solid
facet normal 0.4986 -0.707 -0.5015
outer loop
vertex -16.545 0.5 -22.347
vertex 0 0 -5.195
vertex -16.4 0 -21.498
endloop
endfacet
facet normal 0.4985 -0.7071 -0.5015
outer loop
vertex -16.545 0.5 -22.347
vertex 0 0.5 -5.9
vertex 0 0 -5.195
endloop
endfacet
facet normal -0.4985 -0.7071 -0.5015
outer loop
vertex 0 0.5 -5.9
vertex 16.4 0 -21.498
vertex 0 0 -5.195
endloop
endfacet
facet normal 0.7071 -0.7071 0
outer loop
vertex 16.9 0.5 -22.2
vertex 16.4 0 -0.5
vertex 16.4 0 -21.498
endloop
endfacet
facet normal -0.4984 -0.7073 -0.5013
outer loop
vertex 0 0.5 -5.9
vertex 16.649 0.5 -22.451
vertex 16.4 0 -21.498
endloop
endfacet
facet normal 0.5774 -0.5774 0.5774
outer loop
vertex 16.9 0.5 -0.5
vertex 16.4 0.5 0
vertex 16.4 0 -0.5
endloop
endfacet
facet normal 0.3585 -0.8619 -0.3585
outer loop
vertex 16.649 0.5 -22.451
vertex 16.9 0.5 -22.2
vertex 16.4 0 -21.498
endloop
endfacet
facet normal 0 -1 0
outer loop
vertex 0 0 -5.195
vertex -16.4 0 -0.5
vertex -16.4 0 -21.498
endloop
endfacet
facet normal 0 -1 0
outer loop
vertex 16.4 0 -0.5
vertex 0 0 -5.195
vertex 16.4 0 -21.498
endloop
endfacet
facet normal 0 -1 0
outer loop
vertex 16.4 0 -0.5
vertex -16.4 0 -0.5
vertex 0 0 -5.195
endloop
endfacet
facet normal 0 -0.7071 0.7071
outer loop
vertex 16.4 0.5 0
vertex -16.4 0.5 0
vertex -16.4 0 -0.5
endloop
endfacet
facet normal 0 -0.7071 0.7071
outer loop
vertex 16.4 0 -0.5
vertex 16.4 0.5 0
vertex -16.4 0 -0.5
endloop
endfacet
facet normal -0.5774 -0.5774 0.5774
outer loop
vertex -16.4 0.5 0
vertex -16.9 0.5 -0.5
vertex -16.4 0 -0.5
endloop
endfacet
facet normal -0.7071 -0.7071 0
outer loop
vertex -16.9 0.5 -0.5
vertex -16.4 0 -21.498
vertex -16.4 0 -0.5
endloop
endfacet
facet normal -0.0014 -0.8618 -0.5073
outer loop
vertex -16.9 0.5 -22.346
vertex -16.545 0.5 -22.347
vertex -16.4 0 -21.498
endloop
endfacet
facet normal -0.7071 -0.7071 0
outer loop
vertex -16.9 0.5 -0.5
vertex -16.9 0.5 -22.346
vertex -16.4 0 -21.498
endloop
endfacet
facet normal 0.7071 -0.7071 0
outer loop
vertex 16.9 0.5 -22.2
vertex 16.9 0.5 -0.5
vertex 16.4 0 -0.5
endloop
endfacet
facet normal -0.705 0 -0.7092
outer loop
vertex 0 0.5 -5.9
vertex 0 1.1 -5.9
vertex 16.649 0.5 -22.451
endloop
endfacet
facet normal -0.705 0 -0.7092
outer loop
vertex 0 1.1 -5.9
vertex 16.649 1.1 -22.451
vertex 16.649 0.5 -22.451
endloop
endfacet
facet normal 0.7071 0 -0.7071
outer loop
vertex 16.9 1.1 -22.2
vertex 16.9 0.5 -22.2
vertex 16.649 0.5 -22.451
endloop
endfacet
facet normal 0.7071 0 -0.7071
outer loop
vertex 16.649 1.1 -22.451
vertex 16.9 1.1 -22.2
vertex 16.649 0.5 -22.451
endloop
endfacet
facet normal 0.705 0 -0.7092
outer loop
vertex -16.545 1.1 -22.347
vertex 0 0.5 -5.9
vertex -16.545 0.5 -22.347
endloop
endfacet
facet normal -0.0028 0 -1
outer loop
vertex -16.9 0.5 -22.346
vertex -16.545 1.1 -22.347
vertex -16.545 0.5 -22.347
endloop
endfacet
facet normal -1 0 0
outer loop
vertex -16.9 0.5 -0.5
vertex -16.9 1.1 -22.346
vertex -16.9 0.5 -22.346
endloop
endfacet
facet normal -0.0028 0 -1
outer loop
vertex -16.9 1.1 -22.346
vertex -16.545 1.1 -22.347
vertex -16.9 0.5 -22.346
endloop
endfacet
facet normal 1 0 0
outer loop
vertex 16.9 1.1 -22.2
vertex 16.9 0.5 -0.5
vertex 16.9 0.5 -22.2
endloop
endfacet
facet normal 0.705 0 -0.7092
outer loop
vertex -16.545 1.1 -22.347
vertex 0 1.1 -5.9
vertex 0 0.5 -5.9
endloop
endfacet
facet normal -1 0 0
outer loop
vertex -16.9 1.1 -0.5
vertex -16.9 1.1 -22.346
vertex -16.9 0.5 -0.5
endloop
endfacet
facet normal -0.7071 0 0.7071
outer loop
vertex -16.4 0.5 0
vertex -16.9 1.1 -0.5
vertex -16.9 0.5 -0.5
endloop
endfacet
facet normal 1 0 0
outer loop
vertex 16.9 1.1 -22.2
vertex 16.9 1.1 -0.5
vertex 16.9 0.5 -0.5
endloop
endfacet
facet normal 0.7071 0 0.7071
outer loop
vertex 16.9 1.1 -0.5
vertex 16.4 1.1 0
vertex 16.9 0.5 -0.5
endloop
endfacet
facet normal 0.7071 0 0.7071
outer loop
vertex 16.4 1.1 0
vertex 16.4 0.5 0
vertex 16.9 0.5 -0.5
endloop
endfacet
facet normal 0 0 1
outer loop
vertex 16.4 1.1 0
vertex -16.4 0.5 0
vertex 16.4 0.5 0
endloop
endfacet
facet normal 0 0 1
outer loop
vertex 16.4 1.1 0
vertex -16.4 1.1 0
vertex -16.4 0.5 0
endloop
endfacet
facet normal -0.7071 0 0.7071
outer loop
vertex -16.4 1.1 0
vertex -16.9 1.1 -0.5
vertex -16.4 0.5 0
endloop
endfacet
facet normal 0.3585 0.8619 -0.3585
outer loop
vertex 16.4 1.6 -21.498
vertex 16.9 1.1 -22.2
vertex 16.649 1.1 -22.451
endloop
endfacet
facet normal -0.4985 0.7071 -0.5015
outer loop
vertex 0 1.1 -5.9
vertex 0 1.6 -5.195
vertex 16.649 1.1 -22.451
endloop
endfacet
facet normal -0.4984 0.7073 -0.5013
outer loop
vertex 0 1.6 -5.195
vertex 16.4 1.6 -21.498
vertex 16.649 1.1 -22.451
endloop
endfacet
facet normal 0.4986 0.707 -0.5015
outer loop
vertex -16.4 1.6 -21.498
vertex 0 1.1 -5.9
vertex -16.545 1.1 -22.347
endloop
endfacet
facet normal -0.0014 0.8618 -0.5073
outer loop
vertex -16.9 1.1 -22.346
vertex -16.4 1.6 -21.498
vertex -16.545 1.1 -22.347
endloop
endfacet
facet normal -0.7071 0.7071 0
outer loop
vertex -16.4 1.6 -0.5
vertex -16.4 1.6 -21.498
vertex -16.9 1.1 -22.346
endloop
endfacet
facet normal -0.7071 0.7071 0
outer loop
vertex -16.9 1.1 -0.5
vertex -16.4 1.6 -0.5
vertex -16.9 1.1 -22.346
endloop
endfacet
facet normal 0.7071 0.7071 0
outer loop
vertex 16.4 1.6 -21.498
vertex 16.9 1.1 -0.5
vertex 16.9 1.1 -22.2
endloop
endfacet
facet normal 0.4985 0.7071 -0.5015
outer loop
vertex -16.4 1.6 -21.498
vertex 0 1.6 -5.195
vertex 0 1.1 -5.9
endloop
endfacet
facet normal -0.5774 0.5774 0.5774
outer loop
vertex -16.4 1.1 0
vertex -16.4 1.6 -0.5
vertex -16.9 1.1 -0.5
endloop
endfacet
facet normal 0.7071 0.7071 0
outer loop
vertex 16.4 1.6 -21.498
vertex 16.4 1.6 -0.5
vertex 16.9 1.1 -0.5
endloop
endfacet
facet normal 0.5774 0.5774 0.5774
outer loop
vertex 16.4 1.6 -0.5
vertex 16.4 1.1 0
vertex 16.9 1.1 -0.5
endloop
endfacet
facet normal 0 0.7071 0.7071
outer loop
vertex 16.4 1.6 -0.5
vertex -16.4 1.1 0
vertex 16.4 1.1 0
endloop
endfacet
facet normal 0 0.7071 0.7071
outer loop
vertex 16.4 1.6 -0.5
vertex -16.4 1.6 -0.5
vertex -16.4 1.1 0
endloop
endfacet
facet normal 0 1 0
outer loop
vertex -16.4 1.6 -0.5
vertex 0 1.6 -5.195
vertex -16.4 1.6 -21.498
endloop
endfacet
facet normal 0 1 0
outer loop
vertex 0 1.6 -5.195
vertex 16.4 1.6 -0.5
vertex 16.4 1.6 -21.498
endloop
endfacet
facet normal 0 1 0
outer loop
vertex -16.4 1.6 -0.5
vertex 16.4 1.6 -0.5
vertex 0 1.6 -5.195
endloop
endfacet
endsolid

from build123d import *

# Parameters (mm, degrees)
BOSS_EXTRUDE1_DEPTH = 1.6


with BuildPart() as part:
    # Sketch1 → Boss-Extrude1 (new body)
    with BuildSketch(Plane(origin=(0, 0, 0), x_dir=(1, 0, 0), z_dir=(0, 1, 0))):
        Polygon((16.9, 22.7), (16.9, 0), (-16.9, 0), (-16.9, 22.7), (0, 5.9), align=None)
    extrude(amount=BOSS_EXTRUDE1_DEPTH)

    # Chamfer1
    # the kernel refuses this chamfer: 0.5, 0.353554947 mm, written as the material it takes off along each edge
    with BuildSketch(Plane(origin=(-16.566666667, 1.266666667, -0.333333333), x_dir=(-0.7071067811865475, 0, -0.7071067811865475), z_dir=(-0.5773502691896256, 0.5773502691896261, 0.5773502691896256)), Plane(origin=(16.566666667, 1.266666667, -0.333333333), x_dir=(-0.7071067811865475, 0, 0.7071067811865475), z_dir=(0.5773502691896258, 0.5773502691896256, 0.5773502691896258))) as chamfer1_piece_1:
        Polygon((-0.353553391, 0.204124145), (0.353553391, 0.204124145), (0, -0.40824829), align=None)
    extrude(amount=0.635085296, mode=Mode.SUBTRACT)
    with BuildSketch(Plane(origin=(-16.615133017, 1.266666667, -22.06396102), x_dir=(0.9999955974192072, 0, -0.0029673459864134454), z_dir=(-0.0015045248311199464, 0.8619301129134874, -0.507024868086345))) as chamfer1_piece_2:
        Polygon((-0.284027501, 0.328713527), (0.070575009, 0.328713527), (0.213452492, -0.657427055), align=None)
    extrude(amount=0.671248828, mode=Mode.SUBTRACT)
    with BuildSketch(Plane(origin=(16.64975272, 1.266666667, -22.049560855), x_dir=(-0.7071067811865375, 0, -0.7071067811865576), z_dir=(0.35852230087747156, 0.8619301129134861, -0.3585223008774614))) as chamfer1_piece_3:
        Polygon((-0.070575009, -0.328713527), (0.284027501, -0.328713527), (-0.213452492, 0.657427055), align=None)
    extrude(amount=0.671248828, mode=Mode.SUBTRACT)
    with BuildSketch(Plane(origin=(16.64975272, 0.333333333, -22.049560855), x_dir=(-0.7071067811865375, 0, -0.7071067811865576), z_dir=(0.3585223008774716, -0.8619301129134861, -0.3585223008774613))) as chamfer1_piece_4:
        Polygon((-0.070575009, 0.328713527), (0.284027501, 0.328713527), (-0.213452492, -0.657427055), align=None)
    extrude(amount=0.671248828, mode=Mode.SUBTRACT)
    with BuildSketch(Plane(origin=(16.566666667, 0.333333333, -0.333333333), x_dir=(-0.7071067811865475, 0, 0.7071067811865475), z_dir=(0.5773502691896258, -0.5773502691896257, 0.5773502691896258)), Plane(origin=(-16.566666667, 0.333333333, -0.333333333), x_dir=(-0.7071067811865475, 0, -0.7071067811865475), z_dir=(-0.5773502691896256, -0.5773502691896261, 0.5773502691896255))) as chamfer1_piece_5:
        Polygon((-0.353553391, -0.204124145), (0.353553391, -0.204124145), (0, 0.40824829), align=None)
    extrude(amount=0.635085296, mode=Mode.SUBTRACT)
    with BuildSketch(Plane(origin=(-16.615133017, 0.333333333, -22.06396102), x_dir=(0.9999955974192072, 0, -0.0029673459864134454), z_dir=(-0.0015045248311200809, -0.8619301129134874, -0.507024868086345))) as chamfer1_piece_6:
        Polygon((-0.284027501, -0.328713527), (0.070575009, -0.328713527), (0.213452492, 0.657427055), align=None)
    extrude(amount=0.671248828, mode=Mode.SUBTRACT)
    with BuildSketch(Plane(origin=(-16.9, 1.6, 1.285841494), x_dir=(-0.02749587661058907, -0.9996219169112965, 0), z_dir=(0, 0, -1)), Plane(origin=(16.9, 1.6, -23.985841494), x_dir=(0.02749587661058907, -0.9996219169112965, 0), z_dir=(0, 0, 1))) as chamfer1_piece_7:
        with BuildLine():
            Line((0.514336598, 0), (-0.028273577, -0.513558897))
            Line((-0.028273577, -0.513558897), (-0.038269797, -0.513283938))
            ThreePointArc((-0.038269797, -0.513283938), (-0.017064614, -0.256698915), (-0.009996219, 0.000274959))
            Line((-0.009996219, 0.000274959), (0.000274959, 0.009996219))
            ThreePointArc((0.000274959, 0.009996219), (0.257248832, 0.002927825), (0.514611556, 0.009996219))
            Line((0.514611556, 0.009996219), (0.514336598, 0))
        make_face()
    extrude(amount=25.271682988, mode=Mode.SUBTRACT)
    with BuildSketch(Plane(origin=(18.185841494, 1.6, 0), x_dir=(0, -0.9996219169112968, 0.02749587661058636), z_dir=(-1, 0, 0))) as chamfer1_piece_8:
        with BuildLine():
            Line((0.514336598, 0), (-0.028273577, -0.513558897))
            Line((-0.028273577, -0.513558897), (-0.038269797, -0.513283938))
            ThreePointArc((-0.038269797, -0.513283938), (-0.017064614, -0.256698915), (-0.009996219, 0.000274959))
            Line((-0.009996219, 0.000274959), (0.000274959, 0.009996219))
            ThreePointArc((0.000274959, 0.009996219), (0.257248832, 0.002927825), (0.514611556, 0.009996219))
            Line((0.514611556, 0.009996219), (0.514336598, 0))
        make_face()
    extrude(amount=36.371682988, mode=Mode.SUBTRACT)
    with BuildSketch(Plane(origin=(-0.911921229, 1.6, -4.993474755), x_dir=(-0.019384742522666594, -0.9996219169112968, -0.01950012789482532), z_dir=(0.7092018985609293, 0, -0.7050054376226992))) as chamfer1_piece_9_section:
        with BuildLine():
            Line((0.514336598, 0), (-0.028273577, -0.513558897))
            Line((-0.028273577, -0.513558897), (-0.038269797, -0.513283938))
            ThreePointArc((-0.038269797, -0.513283938), (-0.017064614, -0.256698915), (-0.009996219, 0.000274959))
            Line((-0.009996219, 0.000274959), (0.000274959, 0.009996219))
            ThreePointArc((0.000274959, 0.009996219), (0.257248832, 0.002927825), (0.514611556, 0.009996219))
            Line((0.514611556, 0.009996219), (0.514336598, 0))
        make_face()
    chamfer1_piece_9 = extrude(amount=26.401286426, mode=Mode.PRIVATE)
    chamfer1_piece_9 = split(chamfer1_piece_9, bisect_by=Plane(origin=(0.169796373, 1.435101181, -5.731208339), z_dir=(0.705005437622699, 0, -0.7092018985609295)), keep=Keep.TOP, mode=Mode.PRIVATE)
    add(chamfer1_piece_9, mode=Mode.SUBTRACT)
    with BuildSketch(Plane(origin=(16.9, 0, -23.985841494), x_dir=(0.02749587661058908, 0.9996219169112968, 0), z_dir=(0, 0, 1)), Plane(origin=(-16.9, 0, 1.285841494), x_dir=(-0.02749587661058908, 0.9996219169112968, 0), z_dir=(0, 0, -1))) as chamfer1_piece_10:
        with BuildLine():
            Line((0.514336598, 0), (-0.028273577, 0.513558897))
            Line((-0.028273577, 0.513558897), (-0.038269797, 0.513283938))
            ThreePointArc((-0.038269797, 0.513283938), (-0.017064614, 0.256698915), (-0.009996219, -0.000274959))
            Line((-0.009996219, -0.000274959), (0.000274959, -0.009996219))
            ThreePointArc((0.000274959, -0.009996219), (0.257248832, -0.002927825), (0.514611556, -0.009996219))
            Line((0.514611556, -0.009996219), (0.514336598, 0))
        make_face()
    extrude(amount=25.271682988, mode=Mode.SUBTRACT)
    with BuildSketch(Plane(origin=(18.185841494, 0, 0), x_dir=(0, 0.9996219169112968, 0.02749587661058637), z_dir=(-1, 0, 0))) as chamfer1_piece_11:
        with BuildLine():
            Line((0.514336598, 0), (-0.028273577, 0.513558897))
            Line((-0.028273577, 0.513558897), (-0.038269797, 0.513283938))
            ThreePointArc((-0.038269797, 0.513283938), (-0.017064614, 0.256698915), (-0.009996219, -0.000274959))
            Line((-0.009996219, -0.000274959), (0.000274959, -0.009996219))
            ThreePointArc((0.000274959, -0.009996219), (0.257248832, -0.002927825), (0.514611556, -0.009996219))
            Line((0.514611556, -0.009996219), (0.514336598, 0))
        make_face()
    extrude(amount=36.371682988, mode=Mode.SUBTRACT)
    with BuildSketch(Plane(origin=(-17.811921229, 0, -23.606525245), x_dir=(0.019384742522664138, 0.9996219169112968, -0.019500127894822857), z_dir=(0.7092018985609295, 0, 0.705005437622699))) as chamfer1_piece_12_section:
        with BuildLine():
            Line((0.514336598, 0), (-0.028273577, 0.513558897))
            Line((-0.028273577, 0.513558897), (-0.038269797, 0.513283938))
            ThreePointArc((-0.038269797, 0.513283938), (-0.017064614, 0.256698915), (-0.009996219, -0.000274959))
            Line((-0.009996219, -0.000274959), (0.000274959, -0.009996219))
            ThreePointArc((0.000274959, -0.009996219), (0.257248832, -0.002927825), (0.514611556, -0.009996219))
            Line((0.514611556, -0.009996219), (0.514336598, 0))
        make_face()
    chamfer1_piece_12 = extrude(amount=26.401286426, mode=Mode.PRIVATE)
    chamfer1_piece_12 = split(chamfer1_piece_12, bisect_by=Plane(origin=(-0.169796373, 0.164898819, -5.731208339), z_dir=(-0.7050054376226992, 0, -0.7092018985609293)), keep=Keep.TOP, mode=Mode.PRIVATE)
    add(chamfer1_piece_12, mode=Mode.SUBTRACT)
    with BuildSketch(Plane(origin=(-0.911921229, 0, -4.993474755), x_dir=(-0.0193847425226666, 0.9996219169112968, -0.019500127894825324), z_dir=(0.7092018985609293, 0, -0.7050054376226992))) as chamfer1_piece_13_section:
        with BuildLine():
            Line((0.514336598, 0), (-0.028273577, 0.513558897))
            Line((-0.028273577, 0.513558897), (-0.038269797, 0.513283938))
            ThreePointArc((-0.038269797, 0.513283938), (-0.017064614, 0.256698915), (-0.009996219, -0.000274959))
            Line((-0.009996219, -0.000274959), (0.000274959, -0.009996219))
            ThreePointArc((0.000274959, -0.009996219), (0.257248832, -0.002927825), (0.514611556, -0.009996219))
            Line((0.514611556, -0.009996219), (0.514336598, 0))
        make_face()
    chamfer1_piece_13 = extrude(amount=26.401286426, mode=Mode.PRIVATE)
    chamfer1_piece_13 = split(chamfer1_piece_13, bisect_by=Plane(origin=(0.169796373, 0.164898819, -5.731208339), z_dir=(0.705005437622699, 0, -0.7092018985609295)), keep=Keep.TOP, mode=Mode.PRIVATE)
    add(chamfer1_piece_13, mode=Mode.SUBTRACT)
    with BuildSketch(Plane(origin=(-17.811921229, 1.6, -23.606525245), x_dir=(0.019384742522664134, -0.9996219169112968, -0.019500127894822854), z_dir=(0.7092018985609295, 0, 0.705005437622699))) as chamfer1_piece_14_section:
        with BuildLine():
            Line((0.514336598, 0), (-0.028273577, -0.513558897))
            Line((-0.028273577, -0.513558897), (-0.038269797, -0.513283938))
            ThreePointArc((-0.038269797, -0.513283938), (-0.017064614, -0.256698915), (-0.009996219, 0.000274959))
            Line((-0.009996219, 0.000274959), (0.000274959, 0.009996219))
            ThreePointArc((0.000274959, 0.009996219), (0.257248832, 0.002927825), (0.514611556, 0.009996219))
            Line((0.514611556, 0.009996219), (0.514336598, 0))
        make_face()
    chamfer1_piece_14 = extrude(amount=26.401286426, mode=Mode.PRIVATE)
    chamfer1_piece_14 = split(chamfer1_piece_14, bisect_by=Plane(origin=(-0.169796373, 1.435101181, -5.731208339), z_dir=(-0.7050054376226992, 0, -0.7092018985609293)), keep=Keep.TOP, mode=Mode.PRIVATE)
    add(chamfer1_piece_14, mode=Mode.SUBTRACT)
    with BuildSketch(Plane(origin=(16.9, -1.285841494, 0), x_dir=(0.02749587661058908, 0, -0.9996219169112968), z_dir=(0, 1, 0)), Plane(origin=(-16.9, -1.285841494, 0), x_dir=(0.9996219169112968, 0, 0.027495876610586178), z_dir=(0, 1, 0))) as chamfer1_piece_15:
        with BuildLine():
            Line((0.514336598, 0), (-0.028273577, 0.513558897))
            Line((-0.028273577, 0.513558897), (-0.038269797, 0.513283938))
            ThreePointArc((-0.038269797, 0.513283938), (-0.017064614, 0.256698915), (-0.009996219, -0.000274959))
            Line((-0.009996219, -0.000274959), (0.000274959, -0.009996219))
            ThreePointArc((0.000274959, -0.009996219), (0.257248832, -0.002927825), (0.514611556, -0.009996219))
            Line((0.514611556, -0.009996219), (0.514336598, 0))
        make_face()
    extrude(amount=4.171682988, mode=Mode.SUBTRACT)
    with BuildSketch(Plane(origin=(16.9, -1.285841494, -22.7), x_dir=(0.027495876610589005, 0, 0.9996219169112968), z_dir=(0, 1, 0))) as chamfer1_piece_16:
        with BuildLine():
            Line((0.514336598, 0), (0.227743914, -0.271248548))
            Line((0.227743914, -0.271248548), (0.220460729, -0.278100936))
            ThreePointArc((0.220460729, -0.278100936), (0.113871925, -0.135624304), (-0.007283185, -0.006852388))
            Line((-0.007283185, -0.006852388), (0.000274959, 0.009996219))
            ThreePointArc((0.000274959, 0.009996219), (0.257248832, 0.002927825), (0.514611556, 0.009996219))
            Line((0.514611556, 0.009996219), (0.514336598, 0))
        make_face()
    extrude(amount=4.171682988, mode=Mode.SUBTRACT)
    with BuildSketch(Plane(origin=(-16.9, -1.285841494, -22.7), x_dir=(-0.05646830535179678, 0, 0.9984043922633233), z_dir=(0, 1, 0))) as chamfer1_piece_17:
        with BuildLine():
            Line((0.354179425, 0), (0.330727935, 0.393905025))
            Line((0.330727935, 0.393905025), (0.323249127, 0.400543356))
            ThreePointArc((0.323249127, 0.400543356), (0.163173475, 0.198896835), (-0.007478808, 0.006638331))
            Line((-0.007478808, 0.006638331), (0.000564683, -0.009984044))
            ThreePointArc((0.000564683, -0.009984044), (0.177089715, -4.4e-08), (0.354744109, -0.009984044))
            Line((0.354744109, -0.009984044), (0.354179425, 0))
        make_face()
    extrude(amount=4.171682988, mode=Mode.SUBTRACT)
    with BuildSketch(Plane(origin=(-17.811921229, 1.6, -23.606525245), x_dir=(0.019384742522664134, -0.9996219169112968, -0.019500127894822854), z_dir=(0.7092018985609295, 0, 0.705005437622699))) as chamfer1_piece_18a_section:
        with BuildLine():
            Line((0.514336598, 0), (-0.028273577, -0.513558897))
            Line((-0.028273577, -0.513558897), (-0.038269797, -0.513283938))
            ThreePointArc((-0.038269797, -0.513283938), (-0.017064614, -0.256698915), (-0.009996219, 0.000274959))
            Line((-0.009996219, 0.000274959), (0.000274959, 0.009996219))
            ThreePointArc((0.000274959, 0.009996219), (0.257248832, 0.002927825), (0.514611556, 0.009996219))
            Line((0.514611556, 0.009996219), (0.514336598, 0))
        make_face()
    chamfer1_piece_18a = extrude(amount=26.401286426, mode=Mode.PRIVATE)
    chamfer1_piece_18a = split(chamfer1_piece_18a, bisect_by=Plane(origin=(-0.114291086, 1.435142329, -5.786385193), z_dir=(0.7050054376226992, 0, 0.7092018985609293)), keep=Keep.TOP, mode=Mode.PRIVATE)
    with BuildSketch(Plane(origin=(-0.911921229, 1.6, -4.993474755), x_dir=(-0.019384742522666594, -0.9996219169112968, -0.01950012789482532), z_dir=(0.7092018985609293, 0, -0.7050054376226992))) as chamfer1_piece_18b_section:
        with BuildLine():
            Line((0.514336598, 0), (-0.028273577, -0.513558897))
            Line((-0.028273577, -0.513558897), (-0.038269797, -0.513283938))
            ThreePointArc((-0.038269797, -0.513283938), (-0.017064614, -0.256698915), (-0.009996219, 0.000274959))
            Line((-0.009996219, 0.000274959), (0.000274959, 0.009996219))
            ThreePointArc((0.000274959, 0.009996219), (0.257248832, 0.002927825), (0.514611556, 0.009996219))
            Line((0.514611556, 0.009996219), (0.514336598, 0))
        make_face()
    chamfer1_piece_18b = extrude(amount=26.401286426, mode=Mode.PRIVATE)
    chamfer1_piece_18b = split(chamfer1_piece_18b, bisect_by=Plane(origin=(0.114291086, 1.435142329, -5.786385193), z_dir=(-0.705005437622699, 0, 0.7092018985609295)), keep=Keep.TOP, mode=Mode.PRIVATE)
    chamfer1_piece_18 = chamfer1_piece_18a & chamfer1_piece_18b
    add(chamfer1_piece_18, mode=Mode.SUBTRACT)
    with BuildSketch(Plane(origin=(-17.811921229, 0, -23.606525245), x_dir=(0.019384742522664138, 0.9996219169112968, -0.019500127894822857), z_dir=(0.7092018985609295, 0, 0.705005437622699))) as chamfer1_piece_19a_section:
        with BuildLine():
            Line((0.514336598, 0), (-0.028273577, 0.513558897))
            Line((-0.028273577, 0.513558897), (-0.038269797, 0.513283938))
            ThreePointArc((-0.038269797, 0.513283938), (-0.017064614, 0.256698915), (-0.009996219, -0.000274959))
            Line((-0.009996219, -0.000274959), (0.000274959, -0.009996219))
            ThreePointArc((0.000274959, -0.009996219), (0.257248832, -0.002927825), (0.514611556, -0.009996219))
            Line((0.514611556, -0.009996219), (0.514336598, 0))
        make_face()
    chamfer1_piece_19a = extrude(amount=26.401286426, mode=Mode.PRIVATE)
    chamfer1_piece_19a = split(chamfer1_piece_19a, bisect_by=Plane(origin=(-0.114291086, 0.164857671, -5.786385193), z_dir=(0.7050054376226992, 0, 0.7092018985609293)), keep=Keep.TOP, mode=Mode.PRIVATE)
    with BuildSketch(Plane(origin=(-0.911921229, 0, -4.993474755), x_dir=(-0.0193847425226666, 0.9996219169112968, -0.019500127894825324), z_dir=(0.7092018985609293, 0, -0.7050054376226992))) as chamfer1_piece_19b_section:
        with BuildLine():
            Line((0.514336598, 0), (-0.028273577, 0.513558897))
            Line((-0.028273577, 0.513558897), (-0.038269797, 0.513283938))
            ThreePointArc((-0.038269797, 0.513283938), (-0.017064614, 0.256698915), (-0.009996219, -0.000274959))
            Line((-0.009996219, -0.000274959), (0.000274959, -0.009996219))
            ThreePointArc((0.000274959, -0.009996219), (0.257248832, -0.002927825), (0.514611556, -0.009996219))
            Line((0.514611556, -0.009996219), (0.514336598, 0))
        make_face()
    chamfer1_piece_19b = extrude(amount=26.401286426, mode=Mode.PRIVATE)
    chamfer1_piece_19b = split(chamfer1_piece_19b, bisect_by=Plane(origin=(0.114291086, 0.164857671, -5.786385193), z_dir=(-0.705005437622699, 0, 0.7092018985609295)), keep=Keep.TOP, mode=Mode.PRIVATE)
    chamfer1_piece_19 = chamfer1_piece_19a & chamfer1_piece_19b
    add(chamfer1_piece_19, mode=Mode.SUBTRACT)


solid = part.part
